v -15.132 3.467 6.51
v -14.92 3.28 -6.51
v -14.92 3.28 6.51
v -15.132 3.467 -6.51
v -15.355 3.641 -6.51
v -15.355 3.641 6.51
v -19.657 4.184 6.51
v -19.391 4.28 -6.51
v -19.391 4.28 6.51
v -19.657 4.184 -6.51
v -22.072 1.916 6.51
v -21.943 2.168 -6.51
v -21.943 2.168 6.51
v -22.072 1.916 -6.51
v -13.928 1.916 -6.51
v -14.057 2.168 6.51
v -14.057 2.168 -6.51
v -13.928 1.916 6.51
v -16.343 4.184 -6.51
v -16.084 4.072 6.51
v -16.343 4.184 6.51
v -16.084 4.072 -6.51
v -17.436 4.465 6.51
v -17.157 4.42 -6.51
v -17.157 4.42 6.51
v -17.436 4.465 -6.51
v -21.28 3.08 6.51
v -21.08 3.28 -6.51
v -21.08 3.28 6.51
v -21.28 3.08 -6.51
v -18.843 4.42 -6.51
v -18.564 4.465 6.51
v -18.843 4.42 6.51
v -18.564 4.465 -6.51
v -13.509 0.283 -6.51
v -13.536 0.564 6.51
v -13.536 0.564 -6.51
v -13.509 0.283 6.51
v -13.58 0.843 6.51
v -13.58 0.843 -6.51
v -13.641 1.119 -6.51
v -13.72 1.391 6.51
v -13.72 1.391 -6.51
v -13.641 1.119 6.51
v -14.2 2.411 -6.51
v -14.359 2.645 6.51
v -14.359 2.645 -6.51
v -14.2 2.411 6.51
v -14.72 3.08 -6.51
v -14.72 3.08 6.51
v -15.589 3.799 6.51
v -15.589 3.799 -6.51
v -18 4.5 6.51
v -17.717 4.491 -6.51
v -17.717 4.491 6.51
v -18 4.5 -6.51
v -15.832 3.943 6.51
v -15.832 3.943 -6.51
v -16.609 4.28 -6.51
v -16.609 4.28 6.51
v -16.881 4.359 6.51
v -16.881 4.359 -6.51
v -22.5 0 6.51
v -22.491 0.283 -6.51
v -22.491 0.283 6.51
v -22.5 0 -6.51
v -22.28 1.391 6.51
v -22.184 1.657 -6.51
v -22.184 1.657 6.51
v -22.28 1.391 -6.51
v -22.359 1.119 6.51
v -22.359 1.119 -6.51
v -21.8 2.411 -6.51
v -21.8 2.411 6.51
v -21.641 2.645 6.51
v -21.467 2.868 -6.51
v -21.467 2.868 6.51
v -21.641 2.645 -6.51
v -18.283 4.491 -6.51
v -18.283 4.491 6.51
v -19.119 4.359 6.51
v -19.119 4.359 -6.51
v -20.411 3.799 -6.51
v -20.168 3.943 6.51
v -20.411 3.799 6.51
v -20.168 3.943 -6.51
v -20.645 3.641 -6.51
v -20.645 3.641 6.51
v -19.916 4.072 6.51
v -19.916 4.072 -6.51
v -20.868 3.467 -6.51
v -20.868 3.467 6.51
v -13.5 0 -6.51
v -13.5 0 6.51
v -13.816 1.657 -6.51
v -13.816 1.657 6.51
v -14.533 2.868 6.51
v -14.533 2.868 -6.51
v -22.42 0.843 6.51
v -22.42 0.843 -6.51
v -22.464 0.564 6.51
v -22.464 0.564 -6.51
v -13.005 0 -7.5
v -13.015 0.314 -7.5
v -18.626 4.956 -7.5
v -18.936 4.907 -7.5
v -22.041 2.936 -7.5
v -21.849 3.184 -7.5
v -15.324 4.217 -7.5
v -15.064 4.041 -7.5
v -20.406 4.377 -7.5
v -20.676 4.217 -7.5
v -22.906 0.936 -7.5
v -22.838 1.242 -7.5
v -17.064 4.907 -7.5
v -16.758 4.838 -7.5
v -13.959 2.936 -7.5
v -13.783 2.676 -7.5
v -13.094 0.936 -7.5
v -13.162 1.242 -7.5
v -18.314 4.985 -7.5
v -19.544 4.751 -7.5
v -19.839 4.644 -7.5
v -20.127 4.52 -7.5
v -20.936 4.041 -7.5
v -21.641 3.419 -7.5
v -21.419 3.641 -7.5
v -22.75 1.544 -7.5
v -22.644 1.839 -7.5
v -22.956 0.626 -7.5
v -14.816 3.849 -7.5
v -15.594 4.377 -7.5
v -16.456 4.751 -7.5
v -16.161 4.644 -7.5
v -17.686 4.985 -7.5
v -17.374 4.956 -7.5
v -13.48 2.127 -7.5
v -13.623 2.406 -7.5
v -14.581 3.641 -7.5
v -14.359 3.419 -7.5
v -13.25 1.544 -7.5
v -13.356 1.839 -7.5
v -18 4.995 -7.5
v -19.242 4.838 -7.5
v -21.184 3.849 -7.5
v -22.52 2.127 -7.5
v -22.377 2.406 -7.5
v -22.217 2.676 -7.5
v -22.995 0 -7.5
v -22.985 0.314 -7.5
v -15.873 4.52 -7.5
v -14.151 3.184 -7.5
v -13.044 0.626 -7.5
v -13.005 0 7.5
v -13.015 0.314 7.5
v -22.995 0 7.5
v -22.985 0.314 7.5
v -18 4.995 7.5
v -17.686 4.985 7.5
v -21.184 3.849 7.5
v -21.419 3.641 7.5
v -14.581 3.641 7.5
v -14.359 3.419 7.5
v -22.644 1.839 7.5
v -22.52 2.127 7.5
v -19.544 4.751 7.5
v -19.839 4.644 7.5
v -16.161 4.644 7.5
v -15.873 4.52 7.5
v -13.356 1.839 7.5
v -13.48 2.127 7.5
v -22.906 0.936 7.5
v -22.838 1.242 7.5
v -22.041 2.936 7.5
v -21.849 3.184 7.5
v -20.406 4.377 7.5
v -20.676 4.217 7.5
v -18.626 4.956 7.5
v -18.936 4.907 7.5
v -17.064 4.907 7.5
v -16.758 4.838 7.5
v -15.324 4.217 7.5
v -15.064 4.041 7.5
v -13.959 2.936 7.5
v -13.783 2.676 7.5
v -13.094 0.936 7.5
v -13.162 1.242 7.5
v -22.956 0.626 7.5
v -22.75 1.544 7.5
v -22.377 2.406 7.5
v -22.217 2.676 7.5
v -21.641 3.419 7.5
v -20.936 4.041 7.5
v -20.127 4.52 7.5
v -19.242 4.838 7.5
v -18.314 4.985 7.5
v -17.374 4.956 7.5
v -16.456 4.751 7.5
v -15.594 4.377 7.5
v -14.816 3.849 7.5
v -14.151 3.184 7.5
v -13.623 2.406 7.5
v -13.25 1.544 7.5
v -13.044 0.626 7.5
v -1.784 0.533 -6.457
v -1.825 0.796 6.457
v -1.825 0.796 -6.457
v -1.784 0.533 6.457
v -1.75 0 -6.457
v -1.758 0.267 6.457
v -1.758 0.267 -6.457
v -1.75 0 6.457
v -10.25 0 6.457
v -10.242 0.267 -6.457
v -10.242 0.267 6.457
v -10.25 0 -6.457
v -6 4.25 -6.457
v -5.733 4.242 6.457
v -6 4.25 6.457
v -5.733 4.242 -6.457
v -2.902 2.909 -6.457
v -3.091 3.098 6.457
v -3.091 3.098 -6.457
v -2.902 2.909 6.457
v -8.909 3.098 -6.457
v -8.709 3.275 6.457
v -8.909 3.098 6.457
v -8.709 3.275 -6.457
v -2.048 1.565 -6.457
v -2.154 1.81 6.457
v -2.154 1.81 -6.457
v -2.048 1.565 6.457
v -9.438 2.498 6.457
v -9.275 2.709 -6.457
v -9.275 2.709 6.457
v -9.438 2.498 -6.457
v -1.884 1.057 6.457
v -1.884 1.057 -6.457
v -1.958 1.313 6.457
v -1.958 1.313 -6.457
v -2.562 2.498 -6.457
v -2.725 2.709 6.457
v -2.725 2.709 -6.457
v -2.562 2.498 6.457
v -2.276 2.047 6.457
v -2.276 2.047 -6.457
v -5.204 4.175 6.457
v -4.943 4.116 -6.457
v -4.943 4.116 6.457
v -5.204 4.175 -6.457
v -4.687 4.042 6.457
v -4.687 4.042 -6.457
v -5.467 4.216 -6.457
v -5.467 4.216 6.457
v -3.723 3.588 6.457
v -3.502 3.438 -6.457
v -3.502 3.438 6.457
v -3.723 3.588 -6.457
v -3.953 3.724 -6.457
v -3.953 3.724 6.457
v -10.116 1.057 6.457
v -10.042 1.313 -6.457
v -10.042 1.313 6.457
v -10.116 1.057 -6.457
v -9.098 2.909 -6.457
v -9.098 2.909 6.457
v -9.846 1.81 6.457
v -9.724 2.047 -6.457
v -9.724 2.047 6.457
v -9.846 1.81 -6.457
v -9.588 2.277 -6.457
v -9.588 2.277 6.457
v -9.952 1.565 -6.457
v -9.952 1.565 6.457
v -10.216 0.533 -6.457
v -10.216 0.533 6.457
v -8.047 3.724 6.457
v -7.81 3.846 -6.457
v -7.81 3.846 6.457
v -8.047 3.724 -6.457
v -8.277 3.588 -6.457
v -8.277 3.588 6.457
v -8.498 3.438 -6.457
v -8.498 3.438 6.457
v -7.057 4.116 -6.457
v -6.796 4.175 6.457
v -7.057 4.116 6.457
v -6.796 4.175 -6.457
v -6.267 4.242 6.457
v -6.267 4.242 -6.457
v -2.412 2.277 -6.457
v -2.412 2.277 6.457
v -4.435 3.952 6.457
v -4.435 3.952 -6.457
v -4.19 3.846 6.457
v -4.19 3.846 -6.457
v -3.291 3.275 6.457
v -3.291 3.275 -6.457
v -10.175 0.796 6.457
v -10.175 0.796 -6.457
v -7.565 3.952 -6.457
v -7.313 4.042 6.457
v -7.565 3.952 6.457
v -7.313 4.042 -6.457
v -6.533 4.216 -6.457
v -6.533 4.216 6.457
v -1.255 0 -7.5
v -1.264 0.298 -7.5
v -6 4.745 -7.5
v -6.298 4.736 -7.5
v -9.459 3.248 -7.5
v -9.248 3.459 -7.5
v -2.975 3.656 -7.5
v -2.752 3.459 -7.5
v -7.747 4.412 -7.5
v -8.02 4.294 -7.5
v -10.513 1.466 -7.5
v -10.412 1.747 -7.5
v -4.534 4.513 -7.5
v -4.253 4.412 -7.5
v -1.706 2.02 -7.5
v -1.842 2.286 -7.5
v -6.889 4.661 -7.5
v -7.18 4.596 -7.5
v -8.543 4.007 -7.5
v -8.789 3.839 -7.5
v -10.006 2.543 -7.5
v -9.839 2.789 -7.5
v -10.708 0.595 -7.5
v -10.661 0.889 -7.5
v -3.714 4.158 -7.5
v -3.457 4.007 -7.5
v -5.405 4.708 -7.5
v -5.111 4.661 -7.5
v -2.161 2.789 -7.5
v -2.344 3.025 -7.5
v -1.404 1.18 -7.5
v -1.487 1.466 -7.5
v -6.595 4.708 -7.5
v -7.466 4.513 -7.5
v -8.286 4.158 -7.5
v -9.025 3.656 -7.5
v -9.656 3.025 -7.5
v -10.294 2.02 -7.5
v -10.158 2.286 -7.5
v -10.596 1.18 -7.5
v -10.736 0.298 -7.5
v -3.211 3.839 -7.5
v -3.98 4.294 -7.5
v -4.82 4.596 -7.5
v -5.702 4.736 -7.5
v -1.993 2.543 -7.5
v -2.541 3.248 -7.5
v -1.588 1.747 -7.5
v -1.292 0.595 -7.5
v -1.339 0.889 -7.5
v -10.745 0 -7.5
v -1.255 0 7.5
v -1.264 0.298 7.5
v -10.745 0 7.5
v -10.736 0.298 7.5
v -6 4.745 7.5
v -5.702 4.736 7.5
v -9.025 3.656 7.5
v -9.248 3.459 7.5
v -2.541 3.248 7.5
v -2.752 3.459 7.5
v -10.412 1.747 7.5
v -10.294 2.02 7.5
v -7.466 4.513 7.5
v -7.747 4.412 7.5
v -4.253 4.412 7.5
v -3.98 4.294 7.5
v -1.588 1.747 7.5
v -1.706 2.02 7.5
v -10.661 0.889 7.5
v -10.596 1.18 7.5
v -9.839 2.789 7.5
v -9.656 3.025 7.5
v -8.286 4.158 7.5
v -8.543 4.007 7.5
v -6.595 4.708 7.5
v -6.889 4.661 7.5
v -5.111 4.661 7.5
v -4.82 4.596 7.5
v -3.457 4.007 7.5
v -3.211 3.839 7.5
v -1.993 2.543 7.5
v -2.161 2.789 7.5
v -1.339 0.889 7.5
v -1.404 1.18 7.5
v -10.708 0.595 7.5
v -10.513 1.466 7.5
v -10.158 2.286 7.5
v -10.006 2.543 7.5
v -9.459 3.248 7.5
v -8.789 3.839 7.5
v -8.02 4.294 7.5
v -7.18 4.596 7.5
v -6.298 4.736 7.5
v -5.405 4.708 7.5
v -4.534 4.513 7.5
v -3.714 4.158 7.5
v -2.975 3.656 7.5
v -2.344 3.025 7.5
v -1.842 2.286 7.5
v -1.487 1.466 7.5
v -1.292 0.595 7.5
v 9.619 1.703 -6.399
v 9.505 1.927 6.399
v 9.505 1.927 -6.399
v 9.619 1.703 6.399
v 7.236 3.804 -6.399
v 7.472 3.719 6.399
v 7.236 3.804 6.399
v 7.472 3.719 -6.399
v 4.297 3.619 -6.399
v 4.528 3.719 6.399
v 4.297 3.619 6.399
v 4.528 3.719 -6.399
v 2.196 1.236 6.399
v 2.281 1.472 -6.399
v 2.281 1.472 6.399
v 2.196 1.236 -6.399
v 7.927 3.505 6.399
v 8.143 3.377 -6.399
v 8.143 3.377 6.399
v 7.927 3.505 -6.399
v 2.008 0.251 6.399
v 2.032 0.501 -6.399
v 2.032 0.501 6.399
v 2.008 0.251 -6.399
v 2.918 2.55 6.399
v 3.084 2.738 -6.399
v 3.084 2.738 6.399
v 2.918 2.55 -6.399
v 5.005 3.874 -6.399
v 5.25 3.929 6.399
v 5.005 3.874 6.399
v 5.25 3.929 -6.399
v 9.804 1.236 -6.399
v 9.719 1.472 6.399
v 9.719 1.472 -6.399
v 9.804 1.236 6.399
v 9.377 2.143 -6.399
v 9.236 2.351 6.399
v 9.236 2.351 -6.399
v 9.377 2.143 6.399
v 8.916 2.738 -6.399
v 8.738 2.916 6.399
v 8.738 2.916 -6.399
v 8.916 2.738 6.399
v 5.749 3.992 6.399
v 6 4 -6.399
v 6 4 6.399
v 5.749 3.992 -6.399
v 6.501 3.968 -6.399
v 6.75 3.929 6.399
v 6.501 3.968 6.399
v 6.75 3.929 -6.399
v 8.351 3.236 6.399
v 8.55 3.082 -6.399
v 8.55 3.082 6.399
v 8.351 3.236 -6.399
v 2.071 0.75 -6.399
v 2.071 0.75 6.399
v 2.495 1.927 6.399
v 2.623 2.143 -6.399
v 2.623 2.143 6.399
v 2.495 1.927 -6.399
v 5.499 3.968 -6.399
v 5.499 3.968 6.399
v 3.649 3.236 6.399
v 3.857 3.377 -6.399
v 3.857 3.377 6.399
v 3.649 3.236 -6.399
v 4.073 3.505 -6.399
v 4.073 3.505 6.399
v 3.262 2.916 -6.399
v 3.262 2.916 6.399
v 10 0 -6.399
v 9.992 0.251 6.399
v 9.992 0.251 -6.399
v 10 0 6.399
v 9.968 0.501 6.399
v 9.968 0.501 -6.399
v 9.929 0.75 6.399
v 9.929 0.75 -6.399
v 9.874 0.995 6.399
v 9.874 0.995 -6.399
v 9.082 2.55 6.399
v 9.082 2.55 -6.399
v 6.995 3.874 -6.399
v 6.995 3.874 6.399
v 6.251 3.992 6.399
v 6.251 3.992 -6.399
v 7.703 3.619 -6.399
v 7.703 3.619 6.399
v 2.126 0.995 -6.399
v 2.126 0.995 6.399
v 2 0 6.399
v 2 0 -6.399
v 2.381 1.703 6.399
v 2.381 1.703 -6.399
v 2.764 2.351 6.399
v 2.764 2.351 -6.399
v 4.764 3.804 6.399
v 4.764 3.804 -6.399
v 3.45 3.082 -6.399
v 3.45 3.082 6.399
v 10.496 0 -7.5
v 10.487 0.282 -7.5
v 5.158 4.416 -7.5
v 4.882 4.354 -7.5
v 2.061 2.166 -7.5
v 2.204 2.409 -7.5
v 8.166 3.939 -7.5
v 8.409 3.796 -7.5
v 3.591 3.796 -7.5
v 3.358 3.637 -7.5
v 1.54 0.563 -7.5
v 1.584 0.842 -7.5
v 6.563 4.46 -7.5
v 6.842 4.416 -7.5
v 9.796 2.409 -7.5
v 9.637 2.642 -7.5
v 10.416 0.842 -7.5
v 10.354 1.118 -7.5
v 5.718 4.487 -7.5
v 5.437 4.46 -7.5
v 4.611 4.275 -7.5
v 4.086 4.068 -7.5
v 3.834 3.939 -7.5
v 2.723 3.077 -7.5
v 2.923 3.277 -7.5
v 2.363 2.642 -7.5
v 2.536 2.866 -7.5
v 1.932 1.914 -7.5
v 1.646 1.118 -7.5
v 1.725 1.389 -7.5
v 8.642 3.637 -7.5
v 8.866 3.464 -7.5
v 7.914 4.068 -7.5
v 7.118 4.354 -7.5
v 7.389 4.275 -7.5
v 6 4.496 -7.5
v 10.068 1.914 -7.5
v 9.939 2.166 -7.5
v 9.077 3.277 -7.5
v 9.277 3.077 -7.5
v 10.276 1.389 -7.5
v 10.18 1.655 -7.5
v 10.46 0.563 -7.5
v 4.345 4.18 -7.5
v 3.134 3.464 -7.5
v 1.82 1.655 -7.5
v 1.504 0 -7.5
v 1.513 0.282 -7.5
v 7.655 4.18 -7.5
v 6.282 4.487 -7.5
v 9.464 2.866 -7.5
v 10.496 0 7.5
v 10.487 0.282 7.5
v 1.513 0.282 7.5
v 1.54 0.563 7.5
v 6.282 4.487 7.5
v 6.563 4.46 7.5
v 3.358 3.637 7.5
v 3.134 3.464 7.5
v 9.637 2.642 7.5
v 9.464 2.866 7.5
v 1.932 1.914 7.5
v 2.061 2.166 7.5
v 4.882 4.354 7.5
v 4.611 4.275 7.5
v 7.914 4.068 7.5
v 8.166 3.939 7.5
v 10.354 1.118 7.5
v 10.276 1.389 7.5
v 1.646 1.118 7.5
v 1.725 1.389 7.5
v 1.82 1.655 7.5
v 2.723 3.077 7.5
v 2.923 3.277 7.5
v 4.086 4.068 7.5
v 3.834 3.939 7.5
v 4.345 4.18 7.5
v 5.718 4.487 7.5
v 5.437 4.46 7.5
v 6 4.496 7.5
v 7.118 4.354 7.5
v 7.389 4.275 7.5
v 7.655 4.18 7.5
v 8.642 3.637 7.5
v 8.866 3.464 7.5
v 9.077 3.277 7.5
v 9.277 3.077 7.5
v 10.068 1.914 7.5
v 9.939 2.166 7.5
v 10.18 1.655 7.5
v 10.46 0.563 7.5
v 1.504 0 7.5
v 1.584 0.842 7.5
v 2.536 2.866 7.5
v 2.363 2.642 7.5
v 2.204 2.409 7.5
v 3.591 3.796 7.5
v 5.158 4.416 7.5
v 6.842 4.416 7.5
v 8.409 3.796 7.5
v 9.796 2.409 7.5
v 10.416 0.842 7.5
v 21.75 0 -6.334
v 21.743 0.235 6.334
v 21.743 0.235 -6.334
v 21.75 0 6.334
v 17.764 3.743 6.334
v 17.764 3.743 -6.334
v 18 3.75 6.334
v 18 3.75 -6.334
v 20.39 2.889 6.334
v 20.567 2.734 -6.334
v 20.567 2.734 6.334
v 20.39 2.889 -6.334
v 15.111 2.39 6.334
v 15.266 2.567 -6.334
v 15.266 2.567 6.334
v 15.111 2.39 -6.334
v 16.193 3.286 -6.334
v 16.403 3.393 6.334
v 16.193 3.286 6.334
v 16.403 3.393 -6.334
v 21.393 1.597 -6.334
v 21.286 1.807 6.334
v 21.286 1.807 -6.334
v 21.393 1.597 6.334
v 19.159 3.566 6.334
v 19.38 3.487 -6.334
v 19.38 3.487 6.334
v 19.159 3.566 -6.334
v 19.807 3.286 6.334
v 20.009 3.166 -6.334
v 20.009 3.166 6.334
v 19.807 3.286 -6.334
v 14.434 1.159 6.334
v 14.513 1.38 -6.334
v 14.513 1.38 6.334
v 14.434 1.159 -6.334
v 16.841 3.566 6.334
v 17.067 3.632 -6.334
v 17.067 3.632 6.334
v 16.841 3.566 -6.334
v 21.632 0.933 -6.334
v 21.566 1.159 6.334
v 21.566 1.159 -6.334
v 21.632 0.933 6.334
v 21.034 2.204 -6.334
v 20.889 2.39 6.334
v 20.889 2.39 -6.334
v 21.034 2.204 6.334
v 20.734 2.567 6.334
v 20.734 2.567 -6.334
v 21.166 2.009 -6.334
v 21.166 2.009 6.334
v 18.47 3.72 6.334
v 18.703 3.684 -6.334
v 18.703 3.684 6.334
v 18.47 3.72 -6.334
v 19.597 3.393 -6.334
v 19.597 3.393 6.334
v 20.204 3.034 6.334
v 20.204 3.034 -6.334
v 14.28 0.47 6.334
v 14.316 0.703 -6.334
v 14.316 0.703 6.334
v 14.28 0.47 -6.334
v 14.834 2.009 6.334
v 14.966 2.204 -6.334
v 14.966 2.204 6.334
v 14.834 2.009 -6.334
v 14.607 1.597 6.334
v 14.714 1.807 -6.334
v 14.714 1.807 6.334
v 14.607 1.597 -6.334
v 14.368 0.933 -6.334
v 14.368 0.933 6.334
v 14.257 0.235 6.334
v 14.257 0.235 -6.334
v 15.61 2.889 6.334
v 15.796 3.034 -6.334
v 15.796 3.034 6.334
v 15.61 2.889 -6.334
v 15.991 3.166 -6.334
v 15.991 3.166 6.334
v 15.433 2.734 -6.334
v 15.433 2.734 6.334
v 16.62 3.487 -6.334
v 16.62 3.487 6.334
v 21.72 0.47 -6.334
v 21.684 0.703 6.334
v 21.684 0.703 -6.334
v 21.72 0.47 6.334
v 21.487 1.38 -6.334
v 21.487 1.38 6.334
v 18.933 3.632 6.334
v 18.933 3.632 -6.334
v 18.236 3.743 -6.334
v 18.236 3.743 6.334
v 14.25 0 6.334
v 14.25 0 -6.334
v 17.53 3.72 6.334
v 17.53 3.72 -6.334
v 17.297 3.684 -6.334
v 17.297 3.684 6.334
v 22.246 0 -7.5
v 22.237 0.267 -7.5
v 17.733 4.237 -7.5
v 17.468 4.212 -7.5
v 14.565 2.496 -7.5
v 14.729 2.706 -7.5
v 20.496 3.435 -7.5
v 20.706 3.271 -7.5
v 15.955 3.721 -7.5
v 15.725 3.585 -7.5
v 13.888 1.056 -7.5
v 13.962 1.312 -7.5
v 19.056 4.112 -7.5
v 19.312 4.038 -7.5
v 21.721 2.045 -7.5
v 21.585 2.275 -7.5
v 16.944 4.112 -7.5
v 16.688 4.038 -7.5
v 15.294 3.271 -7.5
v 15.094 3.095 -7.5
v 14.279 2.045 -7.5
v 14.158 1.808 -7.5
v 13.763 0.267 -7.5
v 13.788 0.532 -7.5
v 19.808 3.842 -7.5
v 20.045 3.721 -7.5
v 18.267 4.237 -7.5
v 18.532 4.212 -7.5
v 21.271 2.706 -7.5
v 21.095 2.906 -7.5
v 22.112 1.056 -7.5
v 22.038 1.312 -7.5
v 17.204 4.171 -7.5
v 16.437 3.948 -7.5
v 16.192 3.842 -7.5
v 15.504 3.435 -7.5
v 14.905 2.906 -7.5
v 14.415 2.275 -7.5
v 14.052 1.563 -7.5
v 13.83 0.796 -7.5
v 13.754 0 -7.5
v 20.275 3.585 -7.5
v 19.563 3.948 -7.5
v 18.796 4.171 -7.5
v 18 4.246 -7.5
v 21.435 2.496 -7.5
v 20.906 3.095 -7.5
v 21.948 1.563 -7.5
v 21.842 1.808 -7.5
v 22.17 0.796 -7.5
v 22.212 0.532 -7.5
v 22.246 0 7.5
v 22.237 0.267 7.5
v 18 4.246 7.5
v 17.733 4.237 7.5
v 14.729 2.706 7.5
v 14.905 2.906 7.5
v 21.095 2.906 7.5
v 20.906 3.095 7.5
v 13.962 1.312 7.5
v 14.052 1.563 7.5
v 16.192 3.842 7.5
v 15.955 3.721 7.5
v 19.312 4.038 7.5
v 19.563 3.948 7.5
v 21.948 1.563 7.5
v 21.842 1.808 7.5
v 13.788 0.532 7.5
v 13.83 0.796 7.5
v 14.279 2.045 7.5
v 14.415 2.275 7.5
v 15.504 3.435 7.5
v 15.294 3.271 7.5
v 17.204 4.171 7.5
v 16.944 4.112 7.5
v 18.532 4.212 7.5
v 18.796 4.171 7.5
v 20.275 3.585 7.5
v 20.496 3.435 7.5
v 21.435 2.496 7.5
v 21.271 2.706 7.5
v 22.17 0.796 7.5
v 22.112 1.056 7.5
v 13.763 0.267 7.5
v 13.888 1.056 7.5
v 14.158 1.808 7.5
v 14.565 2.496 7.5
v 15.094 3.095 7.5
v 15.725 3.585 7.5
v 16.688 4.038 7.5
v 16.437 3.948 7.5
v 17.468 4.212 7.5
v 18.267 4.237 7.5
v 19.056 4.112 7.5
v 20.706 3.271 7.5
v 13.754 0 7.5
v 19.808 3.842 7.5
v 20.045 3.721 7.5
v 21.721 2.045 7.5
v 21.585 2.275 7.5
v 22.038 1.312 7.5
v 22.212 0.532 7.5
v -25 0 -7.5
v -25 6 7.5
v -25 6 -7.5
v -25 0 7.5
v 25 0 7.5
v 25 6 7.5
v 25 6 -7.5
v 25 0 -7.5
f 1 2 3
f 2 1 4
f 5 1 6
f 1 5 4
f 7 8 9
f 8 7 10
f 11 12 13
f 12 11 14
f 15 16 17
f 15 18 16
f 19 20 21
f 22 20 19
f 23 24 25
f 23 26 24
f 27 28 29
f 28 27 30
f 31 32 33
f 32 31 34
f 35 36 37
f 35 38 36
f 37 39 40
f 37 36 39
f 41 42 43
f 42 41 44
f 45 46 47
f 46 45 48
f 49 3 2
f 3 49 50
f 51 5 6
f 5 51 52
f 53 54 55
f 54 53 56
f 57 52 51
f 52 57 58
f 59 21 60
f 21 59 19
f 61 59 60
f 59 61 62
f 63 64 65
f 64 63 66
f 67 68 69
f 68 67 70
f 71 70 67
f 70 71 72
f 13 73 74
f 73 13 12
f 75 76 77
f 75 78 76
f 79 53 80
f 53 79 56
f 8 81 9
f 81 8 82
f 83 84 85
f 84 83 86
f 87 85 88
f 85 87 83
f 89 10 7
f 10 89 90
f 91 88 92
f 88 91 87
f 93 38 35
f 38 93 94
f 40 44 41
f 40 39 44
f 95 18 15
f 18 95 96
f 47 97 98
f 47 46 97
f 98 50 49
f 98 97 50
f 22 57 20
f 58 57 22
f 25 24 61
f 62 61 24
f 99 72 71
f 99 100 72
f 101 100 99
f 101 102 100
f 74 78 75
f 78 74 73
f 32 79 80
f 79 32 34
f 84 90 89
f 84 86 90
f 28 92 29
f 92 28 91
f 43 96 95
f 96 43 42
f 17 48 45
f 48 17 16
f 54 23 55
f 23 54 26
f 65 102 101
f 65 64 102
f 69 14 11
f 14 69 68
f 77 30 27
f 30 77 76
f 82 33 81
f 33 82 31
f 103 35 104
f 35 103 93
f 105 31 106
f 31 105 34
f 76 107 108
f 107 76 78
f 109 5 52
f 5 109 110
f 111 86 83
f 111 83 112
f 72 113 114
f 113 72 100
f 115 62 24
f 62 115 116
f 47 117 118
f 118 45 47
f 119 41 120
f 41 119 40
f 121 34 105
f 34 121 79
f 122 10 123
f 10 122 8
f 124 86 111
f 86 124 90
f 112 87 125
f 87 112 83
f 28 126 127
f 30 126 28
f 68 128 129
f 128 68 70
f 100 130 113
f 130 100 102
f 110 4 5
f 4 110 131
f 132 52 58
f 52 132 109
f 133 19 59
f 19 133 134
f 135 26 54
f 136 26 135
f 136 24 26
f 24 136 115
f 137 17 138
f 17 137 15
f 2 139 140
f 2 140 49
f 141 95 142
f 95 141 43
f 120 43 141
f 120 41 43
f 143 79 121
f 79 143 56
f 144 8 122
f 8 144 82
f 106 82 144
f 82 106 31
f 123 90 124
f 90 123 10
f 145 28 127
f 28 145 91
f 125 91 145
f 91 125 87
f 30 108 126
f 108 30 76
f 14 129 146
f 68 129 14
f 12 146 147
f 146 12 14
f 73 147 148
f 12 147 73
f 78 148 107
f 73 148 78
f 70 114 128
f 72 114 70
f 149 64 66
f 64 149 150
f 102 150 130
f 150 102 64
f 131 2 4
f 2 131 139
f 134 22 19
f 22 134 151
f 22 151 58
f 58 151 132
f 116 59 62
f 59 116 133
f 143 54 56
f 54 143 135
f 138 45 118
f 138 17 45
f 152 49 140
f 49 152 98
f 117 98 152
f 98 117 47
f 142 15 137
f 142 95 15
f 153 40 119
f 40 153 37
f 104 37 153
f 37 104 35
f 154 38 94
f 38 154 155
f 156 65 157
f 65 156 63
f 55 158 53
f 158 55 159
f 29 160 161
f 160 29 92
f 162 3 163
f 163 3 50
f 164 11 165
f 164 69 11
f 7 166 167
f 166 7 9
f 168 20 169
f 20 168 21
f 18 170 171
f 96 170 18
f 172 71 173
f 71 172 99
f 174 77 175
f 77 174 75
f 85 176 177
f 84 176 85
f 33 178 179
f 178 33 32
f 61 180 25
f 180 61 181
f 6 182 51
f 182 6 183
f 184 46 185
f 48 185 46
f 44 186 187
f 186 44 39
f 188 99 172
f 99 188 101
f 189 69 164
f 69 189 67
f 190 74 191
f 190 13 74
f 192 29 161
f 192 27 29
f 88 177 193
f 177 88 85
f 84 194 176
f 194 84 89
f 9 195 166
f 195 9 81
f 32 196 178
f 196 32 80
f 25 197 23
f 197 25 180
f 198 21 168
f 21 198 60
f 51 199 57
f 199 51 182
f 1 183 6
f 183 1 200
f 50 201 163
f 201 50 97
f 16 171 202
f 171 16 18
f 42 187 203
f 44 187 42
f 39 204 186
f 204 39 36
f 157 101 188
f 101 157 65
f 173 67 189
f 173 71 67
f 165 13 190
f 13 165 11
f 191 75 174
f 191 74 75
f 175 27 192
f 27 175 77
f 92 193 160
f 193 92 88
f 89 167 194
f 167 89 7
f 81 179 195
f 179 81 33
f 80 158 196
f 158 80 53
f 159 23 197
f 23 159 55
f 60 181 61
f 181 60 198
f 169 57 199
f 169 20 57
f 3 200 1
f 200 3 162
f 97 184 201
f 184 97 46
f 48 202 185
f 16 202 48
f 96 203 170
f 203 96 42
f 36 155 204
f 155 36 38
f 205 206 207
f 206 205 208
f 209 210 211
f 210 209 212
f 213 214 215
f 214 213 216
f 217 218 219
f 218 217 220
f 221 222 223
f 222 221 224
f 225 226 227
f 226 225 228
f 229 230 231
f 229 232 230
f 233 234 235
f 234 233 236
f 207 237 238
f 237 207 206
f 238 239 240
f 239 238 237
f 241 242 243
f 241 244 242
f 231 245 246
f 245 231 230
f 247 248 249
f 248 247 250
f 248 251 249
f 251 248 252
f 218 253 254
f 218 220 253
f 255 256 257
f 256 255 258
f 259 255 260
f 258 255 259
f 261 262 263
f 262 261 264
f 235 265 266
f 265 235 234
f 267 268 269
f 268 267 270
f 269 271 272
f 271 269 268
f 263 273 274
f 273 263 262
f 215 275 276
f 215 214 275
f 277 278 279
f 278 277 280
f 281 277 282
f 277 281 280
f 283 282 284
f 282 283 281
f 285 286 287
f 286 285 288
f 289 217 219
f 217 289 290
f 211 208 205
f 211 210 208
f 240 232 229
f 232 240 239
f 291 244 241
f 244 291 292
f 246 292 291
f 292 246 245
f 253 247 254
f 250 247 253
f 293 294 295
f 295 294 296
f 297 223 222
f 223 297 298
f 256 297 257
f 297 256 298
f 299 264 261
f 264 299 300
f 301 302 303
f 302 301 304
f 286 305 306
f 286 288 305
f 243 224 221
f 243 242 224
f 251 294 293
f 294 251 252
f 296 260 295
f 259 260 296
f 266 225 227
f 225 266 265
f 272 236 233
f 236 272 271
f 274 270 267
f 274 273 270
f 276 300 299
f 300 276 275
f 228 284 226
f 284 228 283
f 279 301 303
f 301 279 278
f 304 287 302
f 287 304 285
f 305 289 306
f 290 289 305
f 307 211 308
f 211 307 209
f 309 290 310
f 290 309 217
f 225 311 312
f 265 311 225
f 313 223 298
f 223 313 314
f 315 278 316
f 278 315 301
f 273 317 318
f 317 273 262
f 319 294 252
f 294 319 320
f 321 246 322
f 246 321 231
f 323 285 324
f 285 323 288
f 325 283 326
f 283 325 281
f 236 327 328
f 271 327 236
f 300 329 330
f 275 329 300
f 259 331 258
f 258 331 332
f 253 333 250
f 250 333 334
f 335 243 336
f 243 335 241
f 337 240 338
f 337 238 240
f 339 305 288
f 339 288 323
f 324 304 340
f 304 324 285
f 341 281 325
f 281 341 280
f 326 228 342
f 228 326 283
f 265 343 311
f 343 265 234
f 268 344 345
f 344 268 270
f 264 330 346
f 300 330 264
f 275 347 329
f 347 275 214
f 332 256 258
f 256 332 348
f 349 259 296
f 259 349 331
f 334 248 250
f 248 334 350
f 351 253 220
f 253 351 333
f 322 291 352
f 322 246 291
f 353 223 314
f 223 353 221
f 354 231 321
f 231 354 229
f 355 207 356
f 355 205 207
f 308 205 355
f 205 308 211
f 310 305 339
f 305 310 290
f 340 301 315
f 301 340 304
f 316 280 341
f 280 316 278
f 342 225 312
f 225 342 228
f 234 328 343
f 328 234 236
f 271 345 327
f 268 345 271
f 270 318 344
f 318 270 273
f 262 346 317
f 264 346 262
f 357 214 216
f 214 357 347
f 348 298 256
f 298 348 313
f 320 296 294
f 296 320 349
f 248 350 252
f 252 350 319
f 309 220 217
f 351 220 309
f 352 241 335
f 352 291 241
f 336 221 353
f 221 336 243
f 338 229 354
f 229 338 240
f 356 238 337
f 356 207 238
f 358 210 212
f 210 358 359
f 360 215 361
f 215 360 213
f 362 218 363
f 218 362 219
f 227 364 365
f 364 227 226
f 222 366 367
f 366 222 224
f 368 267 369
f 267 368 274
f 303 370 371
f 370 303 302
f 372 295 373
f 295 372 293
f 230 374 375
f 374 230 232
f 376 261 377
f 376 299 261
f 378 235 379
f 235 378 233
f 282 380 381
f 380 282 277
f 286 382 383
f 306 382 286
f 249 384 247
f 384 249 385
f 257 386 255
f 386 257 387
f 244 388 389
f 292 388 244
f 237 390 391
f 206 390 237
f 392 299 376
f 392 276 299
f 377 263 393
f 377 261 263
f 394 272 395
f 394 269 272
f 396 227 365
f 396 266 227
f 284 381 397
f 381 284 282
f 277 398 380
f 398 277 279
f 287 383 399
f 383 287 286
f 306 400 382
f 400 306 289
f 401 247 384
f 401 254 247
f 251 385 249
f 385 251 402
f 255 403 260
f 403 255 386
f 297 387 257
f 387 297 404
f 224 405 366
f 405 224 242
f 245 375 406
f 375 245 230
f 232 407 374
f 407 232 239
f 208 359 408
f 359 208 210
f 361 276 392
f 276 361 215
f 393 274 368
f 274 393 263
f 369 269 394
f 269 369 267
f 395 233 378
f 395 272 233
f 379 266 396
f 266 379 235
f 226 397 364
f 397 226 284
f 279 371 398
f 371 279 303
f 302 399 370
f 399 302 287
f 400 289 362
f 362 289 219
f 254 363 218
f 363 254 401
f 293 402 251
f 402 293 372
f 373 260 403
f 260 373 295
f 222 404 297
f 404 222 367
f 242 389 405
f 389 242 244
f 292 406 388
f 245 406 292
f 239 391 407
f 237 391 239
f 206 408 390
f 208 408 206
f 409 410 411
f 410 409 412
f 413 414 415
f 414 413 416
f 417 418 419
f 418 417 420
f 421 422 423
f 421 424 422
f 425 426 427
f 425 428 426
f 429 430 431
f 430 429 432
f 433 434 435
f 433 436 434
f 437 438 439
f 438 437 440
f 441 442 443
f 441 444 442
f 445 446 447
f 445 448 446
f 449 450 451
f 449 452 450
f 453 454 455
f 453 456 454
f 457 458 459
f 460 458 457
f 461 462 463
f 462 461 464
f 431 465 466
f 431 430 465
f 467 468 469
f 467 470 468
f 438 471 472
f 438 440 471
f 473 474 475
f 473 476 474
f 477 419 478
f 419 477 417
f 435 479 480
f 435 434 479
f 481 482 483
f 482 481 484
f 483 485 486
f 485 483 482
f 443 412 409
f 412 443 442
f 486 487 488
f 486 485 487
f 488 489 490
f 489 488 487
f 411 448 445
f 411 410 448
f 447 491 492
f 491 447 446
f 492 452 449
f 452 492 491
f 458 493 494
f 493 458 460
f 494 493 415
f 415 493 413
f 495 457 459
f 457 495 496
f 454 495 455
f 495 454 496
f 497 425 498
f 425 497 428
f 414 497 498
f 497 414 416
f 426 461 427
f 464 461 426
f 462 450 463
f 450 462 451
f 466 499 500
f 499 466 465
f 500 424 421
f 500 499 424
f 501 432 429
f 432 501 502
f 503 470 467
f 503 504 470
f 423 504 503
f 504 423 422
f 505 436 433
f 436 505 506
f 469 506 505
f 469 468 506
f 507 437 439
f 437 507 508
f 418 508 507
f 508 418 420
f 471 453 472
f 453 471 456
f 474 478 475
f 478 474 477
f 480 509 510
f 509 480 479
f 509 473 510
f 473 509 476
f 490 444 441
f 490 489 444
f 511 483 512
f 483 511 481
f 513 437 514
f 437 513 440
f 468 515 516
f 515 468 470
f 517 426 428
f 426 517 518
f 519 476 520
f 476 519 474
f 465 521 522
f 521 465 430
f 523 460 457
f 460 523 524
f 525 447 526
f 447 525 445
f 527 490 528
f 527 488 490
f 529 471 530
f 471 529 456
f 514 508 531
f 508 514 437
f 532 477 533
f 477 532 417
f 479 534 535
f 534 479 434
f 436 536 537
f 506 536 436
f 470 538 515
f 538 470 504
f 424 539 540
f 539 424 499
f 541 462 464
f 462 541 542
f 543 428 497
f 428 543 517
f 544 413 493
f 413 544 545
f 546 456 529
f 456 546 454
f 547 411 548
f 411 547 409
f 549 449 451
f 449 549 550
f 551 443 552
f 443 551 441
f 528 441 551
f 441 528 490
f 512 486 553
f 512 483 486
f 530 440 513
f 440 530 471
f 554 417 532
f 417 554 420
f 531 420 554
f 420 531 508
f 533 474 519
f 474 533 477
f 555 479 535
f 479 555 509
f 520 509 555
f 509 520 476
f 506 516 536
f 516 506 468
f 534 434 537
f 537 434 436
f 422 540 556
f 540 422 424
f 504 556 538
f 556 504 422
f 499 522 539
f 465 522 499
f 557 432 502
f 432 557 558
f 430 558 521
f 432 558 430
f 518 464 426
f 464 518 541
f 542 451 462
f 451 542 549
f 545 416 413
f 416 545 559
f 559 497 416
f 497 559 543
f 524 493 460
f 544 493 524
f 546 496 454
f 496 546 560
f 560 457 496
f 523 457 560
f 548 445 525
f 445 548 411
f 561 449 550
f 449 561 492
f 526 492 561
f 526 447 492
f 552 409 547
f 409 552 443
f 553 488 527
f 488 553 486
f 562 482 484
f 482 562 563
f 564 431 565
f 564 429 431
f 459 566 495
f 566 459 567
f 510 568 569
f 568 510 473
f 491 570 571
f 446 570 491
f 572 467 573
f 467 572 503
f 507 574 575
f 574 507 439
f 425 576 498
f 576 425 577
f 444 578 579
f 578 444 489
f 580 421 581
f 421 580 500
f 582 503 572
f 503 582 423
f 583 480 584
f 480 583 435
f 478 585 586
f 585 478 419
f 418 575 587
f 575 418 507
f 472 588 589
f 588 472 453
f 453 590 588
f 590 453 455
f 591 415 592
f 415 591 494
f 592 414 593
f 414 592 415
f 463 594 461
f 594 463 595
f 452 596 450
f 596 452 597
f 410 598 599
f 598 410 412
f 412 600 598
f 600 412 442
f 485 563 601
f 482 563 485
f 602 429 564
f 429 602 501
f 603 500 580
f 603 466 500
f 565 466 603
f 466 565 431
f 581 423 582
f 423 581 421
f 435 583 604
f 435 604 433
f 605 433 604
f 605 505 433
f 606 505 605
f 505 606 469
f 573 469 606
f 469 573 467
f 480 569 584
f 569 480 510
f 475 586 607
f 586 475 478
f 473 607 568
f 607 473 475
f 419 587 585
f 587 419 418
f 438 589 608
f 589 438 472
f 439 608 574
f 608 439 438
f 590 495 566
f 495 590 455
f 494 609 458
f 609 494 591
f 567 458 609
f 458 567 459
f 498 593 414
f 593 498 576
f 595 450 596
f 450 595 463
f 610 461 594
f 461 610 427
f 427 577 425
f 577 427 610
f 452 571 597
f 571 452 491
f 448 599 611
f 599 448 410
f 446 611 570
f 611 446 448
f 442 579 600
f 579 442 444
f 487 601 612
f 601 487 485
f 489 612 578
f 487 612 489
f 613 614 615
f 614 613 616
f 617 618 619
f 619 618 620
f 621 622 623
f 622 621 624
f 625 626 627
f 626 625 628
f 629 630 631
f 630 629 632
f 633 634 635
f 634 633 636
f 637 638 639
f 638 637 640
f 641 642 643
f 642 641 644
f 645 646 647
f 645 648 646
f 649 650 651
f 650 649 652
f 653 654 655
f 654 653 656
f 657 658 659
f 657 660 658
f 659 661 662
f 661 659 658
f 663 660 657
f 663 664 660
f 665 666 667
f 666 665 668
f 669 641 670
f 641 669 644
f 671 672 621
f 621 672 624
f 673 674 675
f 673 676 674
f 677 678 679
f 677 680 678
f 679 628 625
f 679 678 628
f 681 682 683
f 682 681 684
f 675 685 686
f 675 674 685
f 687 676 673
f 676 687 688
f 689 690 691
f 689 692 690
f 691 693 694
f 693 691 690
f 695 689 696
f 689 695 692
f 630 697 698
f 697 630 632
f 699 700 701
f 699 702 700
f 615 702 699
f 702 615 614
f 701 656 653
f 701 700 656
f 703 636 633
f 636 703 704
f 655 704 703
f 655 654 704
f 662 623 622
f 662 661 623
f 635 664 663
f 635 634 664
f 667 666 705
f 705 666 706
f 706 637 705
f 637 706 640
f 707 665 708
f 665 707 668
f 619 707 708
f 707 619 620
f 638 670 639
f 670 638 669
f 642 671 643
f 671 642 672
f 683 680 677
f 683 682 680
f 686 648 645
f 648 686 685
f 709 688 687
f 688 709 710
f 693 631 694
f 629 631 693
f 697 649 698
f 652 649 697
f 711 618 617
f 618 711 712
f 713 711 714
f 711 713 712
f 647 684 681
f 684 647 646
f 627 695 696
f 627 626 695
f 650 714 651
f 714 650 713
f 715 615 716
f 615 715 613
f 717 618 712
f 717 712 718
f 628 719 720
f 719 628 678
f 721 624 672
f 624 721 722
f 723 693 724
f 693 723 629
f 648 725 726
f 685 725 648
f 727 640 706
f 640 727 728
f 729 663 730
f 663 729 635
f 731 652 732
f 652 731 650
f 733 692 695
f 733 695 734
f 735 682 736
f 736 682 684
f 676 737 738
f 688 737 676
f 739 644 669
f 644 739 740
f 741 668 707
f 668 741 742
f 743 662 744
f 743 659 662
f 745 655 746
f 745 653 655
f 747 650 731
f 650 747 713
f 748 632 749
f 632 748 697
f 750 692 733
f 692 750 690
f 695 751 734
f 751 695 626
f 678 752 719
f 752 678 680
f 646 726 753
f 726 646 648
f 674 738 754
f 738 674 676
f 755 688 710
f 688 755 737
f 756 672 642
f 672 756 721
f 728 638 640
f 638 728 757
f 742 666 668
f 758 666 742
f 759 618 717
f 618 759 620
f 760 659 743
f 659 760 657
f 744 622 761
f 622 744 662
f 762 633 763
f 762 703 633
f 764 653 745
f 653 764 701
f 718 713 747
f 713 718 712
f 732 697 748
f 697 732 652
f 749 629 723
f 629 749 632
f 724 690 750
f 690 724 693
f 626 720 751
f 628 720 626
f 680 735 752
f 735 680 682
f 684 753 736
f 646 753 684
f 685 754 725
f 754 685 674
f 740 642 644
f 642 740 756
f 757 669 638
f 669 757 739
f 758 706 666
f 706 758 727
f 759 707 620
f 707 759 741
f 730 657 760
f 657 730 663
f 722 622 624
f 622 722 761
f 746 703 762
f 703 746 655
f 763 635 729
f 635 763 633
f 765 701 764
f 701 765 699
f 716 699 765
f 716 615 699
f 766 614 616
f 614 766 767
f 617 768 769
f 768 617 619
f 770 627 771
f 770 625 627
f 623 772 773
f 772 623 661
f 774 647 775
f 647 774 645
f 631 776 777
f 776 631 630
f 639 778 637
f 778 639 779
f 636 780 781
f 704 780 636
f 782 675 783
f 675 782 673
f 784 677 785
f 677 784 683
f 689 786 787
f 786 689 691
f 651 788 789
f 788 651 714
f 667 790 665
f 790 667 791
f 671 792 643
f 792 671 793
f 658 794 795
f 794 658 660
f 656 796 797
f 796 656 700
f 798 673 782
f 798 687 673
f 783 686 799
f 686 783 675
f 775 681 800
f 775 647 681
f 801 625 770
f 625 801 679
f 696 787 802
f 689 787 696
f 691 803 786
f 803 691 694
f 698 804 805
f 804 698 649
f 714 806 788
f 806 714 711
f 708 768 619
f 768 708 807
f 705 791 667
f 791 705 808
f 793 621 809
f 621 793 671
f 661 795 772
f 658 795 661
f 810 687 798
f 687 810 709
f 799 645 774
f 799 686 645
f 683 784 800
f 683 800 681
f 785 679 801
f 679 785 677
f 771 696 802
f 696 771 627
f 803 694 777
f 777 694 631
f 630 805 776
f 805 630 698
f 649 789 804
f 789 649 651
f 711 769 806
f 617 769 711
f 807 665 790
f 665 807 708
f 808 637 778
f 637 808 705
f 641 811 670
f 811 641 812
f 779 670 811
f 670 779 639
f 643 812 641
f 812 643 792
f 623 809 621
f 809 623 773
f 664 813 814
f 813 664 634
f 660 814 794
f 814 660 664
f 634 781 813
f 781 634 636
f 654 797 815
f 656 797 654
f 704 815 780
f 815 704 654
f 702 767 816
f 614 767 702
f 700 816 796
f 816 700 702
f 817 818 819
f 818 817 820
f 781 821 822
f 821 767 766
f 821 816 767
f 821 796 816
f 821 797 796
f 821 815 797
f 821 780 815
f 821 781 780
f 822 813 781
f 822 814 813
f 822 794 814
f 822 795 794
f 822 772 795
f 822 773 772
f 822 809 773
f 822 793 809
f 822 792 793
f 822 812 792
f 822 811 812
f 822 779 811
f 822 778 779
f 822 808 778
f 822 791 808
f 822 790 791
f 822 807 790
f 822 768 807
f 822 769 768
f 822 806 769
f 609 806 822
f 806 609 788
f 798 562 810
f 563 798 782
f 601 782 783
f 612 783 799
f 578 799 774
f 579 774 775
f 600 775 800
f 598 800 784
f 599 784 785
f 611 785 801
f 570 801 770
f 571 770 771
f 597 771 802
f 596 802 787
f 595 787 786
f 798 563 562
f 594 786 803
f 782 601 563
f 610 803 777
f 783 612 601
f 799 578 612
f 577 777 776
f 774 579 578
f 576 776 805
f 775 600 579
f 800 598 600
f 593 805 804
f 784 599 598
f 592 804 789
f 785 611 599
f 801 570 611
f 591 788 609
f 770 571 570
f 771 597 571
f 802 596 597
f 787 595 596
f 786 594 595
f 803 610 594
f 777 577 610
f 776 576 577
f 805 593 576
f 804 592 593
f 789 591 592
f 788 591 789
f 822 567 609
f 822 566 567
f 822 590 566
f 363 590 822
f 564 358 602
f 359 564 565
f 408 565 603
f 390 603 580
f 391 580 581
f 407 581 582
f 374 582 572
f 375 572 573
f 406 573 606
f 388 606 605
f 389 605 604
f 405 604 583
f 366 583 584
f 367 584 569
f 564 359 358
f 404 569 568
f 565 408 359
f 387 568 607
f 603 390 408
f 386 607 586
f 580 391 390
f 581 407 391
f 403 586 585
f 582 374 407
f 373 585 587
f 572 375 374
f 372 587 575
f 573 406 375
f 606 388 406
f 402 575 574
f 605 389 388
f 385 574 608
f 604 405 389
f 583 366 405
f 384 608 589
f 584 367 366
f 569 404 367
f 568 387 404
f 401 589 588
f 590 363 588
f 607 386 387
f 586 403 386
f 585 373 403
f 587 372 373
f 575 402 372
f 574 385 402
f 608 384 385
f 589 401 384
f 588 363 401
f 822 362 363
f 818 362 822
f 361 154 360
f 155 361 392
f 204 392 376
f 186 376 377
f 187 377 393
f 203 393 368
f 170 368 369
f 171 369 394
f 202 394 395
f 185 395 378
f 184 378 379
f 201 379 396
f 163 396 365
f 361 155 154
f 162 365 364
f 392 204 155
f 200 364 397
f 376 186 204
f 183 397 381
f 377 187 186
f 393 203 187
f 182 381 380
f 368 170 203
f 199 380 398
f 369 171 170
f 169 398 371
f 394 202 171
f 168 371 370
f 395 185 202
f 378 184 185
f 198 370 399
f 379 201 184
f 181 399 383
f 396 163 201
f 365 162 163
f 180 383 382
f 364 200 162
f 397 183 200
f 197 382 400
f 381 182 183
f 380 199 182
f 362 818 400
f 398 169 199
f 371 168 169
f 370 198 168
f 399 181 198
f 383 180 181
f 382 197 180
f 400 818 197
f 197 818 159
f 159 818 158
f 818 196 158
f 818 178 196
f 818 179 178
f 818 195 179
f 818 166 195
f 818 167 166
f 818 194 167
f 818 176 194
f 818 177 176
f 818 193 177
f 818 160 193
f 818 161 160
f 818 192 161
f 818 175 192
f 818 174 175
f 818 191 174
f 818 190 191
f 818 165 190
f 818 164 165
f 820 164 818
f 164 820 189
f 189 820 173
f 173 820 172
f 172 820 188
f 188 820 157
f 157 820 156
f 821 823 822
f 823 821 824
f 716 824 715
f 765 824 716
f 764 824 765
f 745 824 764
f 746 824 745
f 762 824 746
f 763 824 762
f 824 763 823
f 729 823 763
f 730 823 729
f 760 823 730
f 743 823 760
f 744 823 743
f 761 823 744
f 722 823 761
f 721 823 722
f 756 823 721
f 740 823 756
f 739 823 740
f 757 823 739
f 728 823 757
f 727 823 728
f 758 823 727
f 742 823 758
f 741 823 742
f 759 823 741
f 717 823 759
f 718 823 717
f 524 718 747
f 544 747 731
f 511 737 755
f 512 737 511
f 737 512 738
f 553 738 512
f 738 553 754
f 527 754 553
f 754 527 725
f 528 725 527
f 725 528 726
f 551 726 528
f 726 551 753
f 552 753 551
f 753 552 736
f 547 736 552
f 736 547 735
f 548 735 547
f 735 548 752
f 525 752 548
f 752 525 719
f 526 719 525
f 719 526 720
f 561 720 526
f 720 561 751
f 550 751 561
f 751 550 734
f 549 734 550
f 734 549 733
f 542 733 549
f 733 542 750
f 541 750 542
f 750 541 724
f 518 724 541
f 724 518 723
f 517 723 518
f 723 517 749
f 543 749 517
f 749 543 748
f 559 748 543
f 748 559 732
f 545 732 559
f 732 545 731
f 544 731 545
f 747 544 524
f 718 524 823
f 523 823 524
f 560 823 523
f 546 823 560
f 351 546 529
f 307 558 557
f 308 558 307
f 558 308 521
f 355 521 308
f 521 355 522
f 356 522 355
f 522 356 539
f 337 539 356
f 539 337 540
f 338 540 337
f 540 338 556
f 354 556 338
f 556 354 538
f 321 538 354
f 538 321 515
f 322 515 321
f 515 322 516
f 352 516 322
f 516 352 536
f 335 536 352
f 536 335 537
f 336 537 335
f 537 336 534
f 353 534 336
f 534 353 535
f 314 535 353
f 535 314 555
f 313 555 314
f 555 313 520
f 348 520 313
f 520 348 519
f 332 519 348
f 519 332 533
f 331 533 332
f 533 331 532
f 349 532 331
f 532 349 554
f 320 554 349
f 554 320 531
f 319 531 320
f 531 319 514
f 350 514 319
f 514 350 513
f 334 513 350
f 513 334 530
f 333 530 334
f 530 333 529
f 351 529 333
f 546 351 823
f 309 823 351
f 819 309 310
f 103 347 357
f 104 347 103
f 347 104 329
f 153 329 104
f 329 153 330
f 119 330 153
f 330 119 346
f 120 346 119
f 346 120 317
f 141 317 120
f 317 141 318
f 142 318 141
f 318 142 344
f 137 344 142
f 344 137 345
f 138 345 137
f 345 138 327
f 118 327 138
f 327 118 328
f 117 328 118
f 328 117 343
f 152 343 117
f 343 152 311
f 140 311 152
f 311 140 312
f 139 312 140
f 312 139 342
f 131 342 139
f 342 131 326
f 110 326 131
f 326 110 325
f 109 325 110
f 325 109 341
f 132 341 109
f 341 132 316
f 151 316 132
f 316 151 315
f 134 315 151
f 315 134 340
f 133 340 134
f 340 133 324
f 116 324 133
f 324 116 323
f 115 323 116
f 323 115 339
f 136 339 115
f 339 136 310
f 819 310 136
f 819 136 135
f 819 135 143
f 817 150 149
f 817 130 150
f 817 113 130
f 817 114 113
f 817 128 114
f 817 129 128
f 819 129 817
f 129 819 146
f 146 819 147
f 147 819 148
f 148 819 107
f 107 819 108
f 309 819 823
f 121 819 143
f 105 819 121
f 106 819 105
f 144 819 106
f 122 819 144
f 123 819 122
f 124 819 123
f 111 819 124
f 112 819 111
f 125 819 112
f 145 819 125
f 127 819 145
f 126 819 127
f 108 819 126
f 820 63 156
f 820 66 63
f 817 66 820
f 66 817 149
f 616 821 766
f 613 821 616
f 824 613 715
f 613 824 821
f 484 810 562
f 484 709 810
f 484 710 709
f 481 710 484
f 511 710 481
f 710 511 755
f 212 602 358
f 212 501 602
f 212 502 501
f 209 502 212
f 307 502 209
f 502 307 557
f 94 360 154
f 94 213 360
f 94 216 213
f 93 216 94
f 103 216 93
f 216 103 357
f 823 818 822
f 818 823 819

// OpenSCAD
$fn=100;

difference(){
    translate([0,3,0]) cube([50, 6, 15], center=true);
    
    for(i=[0:3]){
        translate([-18+i*12,0,-20]) cylinder(d=9-0.5*i, h=50);
        translate([-18+i*12,0,-7.5-0.01]) cylinder(d1=10-0.5*i, d2=0, h=10);
        translate([-18+i*12,0,-2.5+0.01]) cylinder(d2=10-0.5*i, d1=0, h=10);
    }
}
